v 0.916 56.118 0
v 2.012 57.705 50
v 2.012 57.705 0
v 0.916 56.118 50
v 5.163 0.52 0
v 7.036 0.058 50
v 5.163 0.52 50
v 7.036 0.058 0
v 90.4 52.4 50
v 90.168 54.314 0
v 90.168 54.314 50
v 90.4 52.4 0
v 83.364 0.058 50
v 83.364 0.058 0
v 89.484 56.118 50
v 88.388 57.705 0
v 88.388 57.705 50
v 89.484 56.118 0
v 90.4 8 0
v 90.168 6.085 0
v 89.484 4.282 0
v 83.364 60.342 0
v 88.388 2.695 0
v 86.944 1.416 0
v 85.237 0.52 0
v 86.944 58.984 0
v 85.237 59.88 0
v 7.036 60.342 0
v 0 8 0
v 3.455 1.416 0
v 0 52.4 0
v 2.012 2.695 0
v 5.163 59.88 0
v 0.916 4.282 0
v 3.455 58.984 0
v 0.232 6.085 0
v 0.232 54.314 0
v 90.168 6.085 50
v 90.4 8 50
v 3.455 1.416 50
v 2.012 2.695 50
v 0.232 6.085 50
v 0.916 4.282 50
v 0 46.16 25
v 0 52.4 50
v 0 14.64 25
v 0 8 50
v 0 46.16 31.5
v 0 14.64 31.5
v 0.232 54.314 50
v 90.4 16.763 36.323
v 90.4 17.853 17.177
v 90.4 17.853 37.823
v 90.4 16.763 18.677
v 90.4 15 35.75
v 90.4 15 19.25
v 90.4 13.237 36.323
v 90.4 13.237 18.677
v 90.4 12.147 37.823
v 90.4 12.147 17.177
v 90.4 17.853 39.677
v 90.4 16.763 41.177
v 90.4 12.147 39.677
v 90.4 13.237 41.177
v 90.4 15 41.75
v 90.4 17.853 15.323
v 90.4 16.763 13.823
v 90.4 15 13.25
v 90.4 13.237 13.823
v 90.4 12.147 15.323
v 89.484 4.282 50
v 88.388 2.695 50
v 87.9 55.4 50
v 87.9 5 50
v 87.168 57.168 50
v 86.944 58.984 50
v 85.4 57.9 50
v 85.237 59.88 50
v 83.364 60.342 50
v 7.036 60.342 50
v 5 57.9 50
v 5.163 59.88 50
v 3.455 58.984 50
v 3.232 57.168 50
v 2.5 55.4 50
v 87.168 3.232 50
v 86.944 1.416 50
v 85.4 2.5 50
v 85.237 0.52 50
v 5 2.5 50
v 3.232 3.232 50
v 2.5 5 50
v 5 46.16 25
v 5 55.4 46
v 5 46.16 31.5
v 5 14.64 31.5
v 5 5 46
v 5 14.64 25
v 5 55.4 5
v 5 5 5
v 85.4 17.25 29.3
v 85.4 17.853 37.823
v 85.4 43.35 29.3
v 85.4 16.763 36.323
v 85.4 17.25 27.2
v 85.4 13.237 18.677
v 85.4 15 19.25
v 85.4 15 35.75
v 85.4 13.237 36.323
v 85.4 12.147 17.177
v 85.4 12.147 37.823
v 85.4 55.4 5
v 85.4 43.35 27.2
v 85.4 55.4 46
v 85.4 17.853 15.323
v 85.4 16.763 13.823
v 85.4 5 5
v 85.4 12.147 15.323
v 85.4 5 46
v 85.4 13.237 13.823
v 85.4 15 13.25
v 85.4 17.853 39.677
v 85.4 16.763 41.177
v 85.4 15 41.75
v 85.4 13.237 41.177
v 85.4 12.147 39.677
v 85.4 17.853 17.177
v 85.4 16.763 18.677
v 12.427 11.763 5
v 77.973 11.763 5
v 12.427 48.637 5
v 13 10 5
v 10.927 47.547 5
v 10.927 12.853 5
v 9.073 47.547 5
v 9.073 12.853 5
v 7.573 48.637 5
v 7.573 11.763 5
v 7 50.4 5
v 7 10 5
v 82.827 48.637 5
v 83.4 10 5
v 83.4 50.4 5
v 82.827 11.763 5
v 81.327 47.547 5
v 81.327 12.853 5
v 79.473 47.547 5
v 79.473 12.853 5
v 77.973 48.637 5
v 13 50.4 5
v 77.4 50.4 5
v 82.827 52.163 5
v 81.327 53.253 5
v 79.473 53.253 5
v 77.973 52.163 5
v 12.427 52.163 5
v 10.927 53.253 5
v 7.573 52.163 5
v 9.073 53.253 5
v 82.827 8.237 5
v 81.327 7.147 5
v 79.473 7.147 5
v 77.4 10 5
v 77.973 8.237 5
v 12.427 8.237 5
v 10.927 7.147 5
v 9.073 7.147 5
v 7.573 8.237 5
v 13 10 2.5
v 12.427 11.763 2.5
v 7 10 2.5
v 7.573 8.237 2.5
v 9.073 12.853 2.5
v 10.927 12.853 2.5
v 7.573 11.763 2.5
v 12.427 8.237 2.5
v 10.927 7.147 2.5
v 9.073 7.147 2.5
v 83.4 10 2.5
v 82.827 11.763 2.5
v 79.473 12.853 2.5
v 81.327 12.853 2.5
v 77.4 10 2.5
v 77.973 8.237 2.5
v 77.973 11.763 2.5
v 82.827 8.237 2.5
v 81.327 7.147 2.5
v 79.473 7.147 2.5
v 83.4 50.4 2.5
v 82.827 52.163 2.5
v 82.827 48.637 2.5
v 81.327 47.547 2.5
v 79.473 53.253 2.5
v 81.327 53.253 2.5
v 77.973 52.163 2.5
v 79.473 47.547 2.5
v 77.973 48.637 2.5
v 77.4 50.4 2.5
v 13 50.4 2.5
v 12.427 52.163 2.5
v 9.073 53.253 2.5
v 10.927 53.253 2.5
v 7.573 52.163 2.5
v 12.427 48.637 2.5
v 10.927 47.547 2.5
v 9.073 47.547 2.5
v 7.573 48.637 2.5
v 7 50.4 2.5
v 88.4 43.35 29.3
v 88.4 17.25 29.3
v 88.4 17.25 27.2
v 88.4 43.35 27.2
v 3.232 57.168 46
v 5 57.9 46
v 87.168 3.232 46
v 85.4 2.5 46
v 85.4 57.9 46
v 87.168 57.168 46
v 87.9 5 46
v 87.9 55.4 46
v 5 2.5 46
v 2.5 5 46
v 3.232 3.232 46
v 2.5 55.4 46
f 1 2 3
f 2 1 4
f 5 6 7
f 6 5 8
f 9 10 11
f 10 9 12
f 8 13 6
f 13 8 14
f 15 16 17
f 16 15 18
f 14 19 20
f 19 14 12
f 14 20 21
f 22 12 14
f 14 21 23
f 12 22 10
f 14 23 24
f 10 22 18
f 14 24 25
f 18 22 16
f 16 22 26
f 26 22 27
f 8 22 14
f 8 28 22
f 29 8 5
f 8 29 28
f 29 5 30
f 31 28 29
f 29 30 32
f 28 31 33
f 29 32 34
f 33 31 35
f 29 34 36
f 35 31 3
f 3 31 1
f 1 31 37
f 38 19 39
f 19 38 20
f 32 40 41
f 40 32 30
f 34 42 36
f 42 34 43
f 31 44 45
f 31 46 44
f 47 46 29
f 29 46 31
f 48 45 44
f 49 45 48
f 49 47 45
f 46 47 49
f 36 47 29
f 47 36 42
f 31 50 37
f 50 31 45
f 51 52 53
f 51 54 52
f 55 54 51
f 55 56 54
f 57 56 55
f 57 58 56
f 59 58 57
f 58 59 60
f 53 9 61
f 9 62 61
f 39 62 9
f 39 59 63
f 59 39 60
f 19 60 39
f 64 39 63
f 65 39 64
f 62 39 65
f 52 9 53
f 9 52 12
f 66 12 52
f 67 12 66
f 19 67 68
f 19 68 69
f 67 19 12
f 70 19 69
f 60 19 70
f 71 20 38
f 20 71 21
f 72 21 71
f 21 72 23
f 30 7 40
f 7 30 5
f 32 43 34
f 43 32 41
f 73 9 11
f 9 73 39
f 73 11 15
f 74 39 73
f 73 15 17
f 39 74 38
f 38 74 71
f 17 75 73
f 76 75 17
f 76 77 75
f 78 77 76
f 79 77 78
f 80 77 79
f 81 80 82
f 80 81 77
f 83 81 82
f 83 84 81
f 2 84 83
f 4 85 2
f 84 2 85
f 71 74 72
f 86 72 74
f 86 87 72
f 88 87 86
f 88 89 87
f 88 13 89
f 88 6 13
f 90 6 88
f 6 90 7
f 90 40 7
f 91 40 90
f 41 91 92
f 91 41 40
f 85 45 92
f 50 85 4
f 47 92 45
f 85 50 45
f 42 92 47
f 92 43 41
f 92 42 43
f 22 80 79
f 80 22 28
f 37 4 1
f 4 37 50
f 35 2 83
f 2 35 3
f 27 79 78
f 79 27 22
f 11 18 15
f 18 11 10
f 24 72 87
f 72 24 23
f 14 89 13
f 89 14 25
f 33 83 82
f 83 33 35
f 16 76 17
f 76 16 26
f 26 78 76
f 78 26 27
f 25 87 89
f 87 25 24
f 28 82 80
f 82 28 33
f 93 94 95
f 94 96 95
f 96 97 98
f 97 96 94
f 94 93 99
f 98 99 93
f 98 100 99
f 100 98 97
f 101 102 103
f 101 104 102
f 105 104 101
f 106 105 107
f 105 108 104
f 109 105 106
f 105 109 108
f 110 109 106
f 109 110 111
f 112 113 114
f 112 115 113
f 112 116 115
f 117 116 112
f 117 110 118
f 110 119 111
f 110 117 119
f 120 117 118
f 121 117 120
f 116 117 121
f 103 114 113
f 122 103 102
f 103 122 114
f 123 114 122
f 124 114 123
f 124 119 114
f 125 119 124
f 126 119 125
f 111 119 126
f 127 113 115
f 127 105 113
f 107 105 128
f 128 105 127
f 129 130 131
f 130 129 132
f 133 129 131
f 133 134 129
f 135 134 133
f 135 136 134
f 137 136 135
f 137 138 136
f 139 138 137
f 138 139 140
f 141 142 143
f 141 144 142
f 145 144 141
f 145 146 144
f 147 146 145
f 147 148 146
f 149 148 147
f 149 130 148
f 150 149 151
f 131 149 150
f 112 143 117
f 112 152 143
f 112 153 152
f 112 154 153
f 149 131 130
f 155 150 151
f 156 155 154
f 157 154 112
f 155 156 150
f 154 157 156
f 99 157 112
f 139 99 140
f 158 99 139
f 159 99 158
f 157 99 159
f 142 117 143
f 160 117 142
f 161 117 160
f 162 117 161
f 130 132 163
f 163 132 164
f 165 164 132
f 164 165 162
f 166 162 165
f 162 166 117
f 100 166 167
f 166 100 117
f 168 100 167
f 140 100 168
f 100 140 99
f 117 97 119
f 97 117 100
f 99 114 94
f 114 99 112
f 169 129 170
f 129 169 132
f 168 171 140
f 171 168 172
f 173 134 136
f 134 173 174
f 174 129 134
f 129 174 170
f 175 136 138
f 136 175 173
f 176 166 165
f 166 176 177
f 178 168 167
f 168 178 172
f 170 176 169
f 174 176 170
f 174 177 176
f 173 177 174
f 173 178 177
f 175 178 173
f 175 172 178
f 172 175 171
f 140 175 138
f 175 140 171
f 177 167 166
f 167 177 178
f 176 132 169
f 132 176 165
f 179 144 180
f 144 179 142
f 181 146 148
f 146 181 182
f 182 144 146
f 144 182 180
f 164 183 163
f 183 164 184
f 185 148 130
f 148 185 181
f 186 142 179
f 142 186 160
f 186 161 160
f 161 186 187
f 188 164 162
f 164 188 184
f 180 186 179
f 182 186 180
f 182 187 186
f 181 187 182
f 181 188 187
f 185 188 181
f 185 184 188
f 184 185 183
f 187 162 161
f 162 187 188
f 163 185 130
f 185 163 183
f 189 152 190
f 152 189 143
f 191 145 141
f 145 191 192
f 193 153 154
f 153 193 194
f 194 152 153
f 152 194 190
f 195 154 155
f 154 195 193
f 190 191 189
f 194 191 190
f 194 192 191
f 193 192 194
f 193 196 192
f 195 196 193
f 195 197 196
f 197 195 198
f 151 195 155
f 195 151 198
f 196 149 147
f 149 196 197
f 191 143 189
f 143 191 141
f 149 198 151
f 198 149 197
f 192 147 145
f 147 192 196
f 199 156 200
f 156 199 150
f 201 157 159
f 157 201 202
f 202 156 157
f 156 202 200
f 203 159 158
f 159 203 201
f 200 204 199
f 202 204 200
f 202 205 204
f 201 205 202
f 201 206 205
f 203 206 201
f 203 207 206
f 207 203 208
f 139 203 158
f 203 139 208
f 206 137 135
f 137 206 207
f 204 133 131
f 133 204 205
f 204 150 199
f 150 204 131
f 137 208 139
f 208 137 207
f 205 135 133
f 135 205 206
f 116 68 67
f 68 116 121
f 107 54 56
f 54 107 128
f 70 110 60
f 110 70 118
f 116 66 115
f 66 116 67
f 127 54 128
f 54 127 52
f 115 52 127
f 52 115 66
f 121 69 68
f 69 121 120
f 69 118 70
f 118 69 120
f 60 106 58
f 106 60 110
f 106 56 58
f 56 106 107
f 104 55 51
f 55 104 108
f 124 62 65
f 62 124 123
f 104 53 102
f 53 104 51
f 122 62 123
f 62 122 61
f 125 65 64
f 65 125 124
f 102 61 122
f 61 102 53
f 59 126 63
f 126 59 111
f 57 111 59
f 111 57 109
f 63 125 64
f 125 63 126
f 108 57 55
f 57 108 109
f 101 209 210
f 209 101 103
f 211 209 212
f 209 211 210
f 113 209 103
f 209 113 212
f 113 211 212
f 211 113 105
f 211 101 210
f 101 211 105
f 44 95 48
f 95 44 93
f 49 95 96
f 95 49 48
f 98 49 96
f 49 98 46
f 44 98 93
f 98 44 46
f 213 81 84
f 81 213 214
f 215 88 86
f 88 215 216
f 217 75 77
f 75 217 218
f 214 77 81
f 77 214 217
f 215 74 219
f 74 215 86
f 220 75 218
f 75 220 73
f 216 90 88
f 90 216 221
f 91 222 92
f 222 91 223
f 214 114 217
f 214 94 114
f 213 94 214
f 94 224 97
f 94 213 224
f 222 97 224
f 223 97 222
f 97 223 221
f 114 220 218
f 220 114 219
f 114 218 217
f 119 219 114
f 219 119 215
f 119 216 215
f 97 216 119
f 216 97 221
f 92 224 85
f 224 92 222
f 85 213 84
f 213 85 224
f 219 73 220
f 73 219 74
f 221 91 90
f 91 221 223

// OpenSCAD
// file: open_box.scad
/////////////////////////////////////////////////////////////////////////////////
// Module for a open box with rounded edges.
//
// Author: 		Maximilian Stiefel
// Last modification: 	26.04.2017
/////////////////////////////////////////////////////////////////////////////////

module open_box(width, length, height, thickness)
{

	/////////////////////////////////////////////////////////////////////////
	// Vars
	/////////////////////////////////////////////////////////////////////////
	edge_rounding = 8;
	compensation = 2*abs(edge_rounding-thickness);

	/////////////////////////////////////////////////////////////////////////
	// Action
	/////////////////////////////////////////////////////////////////////////
	translate([0, 0, 0]) difference(){		
		// Hull 4 cylinders which are compensated against the thickness
		// so the actual desired thickness/2 and edge rounding is always achieved.
		hull(){
			// x=0, y=0
			translate([edge_rounding, edge_rounding, 0])
				cylinder(r = edge_rounding, h = height + thickness);
			// x=width, y=0
			translate([width + edge_rounding - compensation, edge_rounding, 0])
				cylinder(r = edge_rounding, h = height + thickness);
			// x=0, y=length
			translate([edge_rounding, length + edge_rounding - compensation,0])
				cylinder(r = edge_rounding, h = height + thickness);
			//x=width, y=length
			translate([width + edge_rounding - compensation, length + edge_rounding - compensation,0])
				cylinder(r = edge_rounding, h = height + thickness);
		}

		translate([thickness, thickness, thickness])
			cube([width, length, height + 1]);
	}
}
// main file
/////////////////////////////////////////////////////////////////////////////////
// Housing box for UppSense first tries.
//
// Author:              Maximilian Stiefel
// Last modification:   23.05.2017
/////////////////////////////////////////////////////////////////////////////////

use <open_box.scad>

/////////////////////////////////////////////////////////////////////////////////
// Vars
/////////////////////////////////////////////////////////////////////////////////
allowance_pcb = 0.2;
width = 50 + 2*allowance_pcb; 
length = 80 + 2*allowance_pcb;
height = 45;
thickness = 5;

lid_depth = 5;

bolt_diameter = 6;		// According to the Farnell datasheet
bolt_spacing = 5;

my_color = "DarkRed";

allowance_glass = 0.1;
allowance_adapter = 0.2;
glass_width = 26 + allowance_glass;
glass_height = 2 + allowance_glass;
glass_length = 76 + allowance_glass;
slot = 3;
adapter_length = 2 + 5 + 4 + slot; // 2*allowance_pcb + thickness + distance(glass_slide, wall_inside) + slot;

cables_diameter = 3;

/////////////////////////////////////////////////////////////////////////////////
// Action
/////////////////////////////////////////////////////////////////////////////////
difference(){

	// Using my open box module for creating a simple box 
	color(my_color, 0.8)
		open_box(length, width, height, thickness);
	
	// Creating a depening for the lid
	color(my_color, 0.9)
	translate([thickness, thickness, height+1])
	hull()
	{
		cylinder(r=thickness/2, h=lid_depth+1);
		translate([0, width, 0])
		cylinder(r=thickness/2, h=lid_depth+1);
		translate([length, 0, 0])
		cylinder(r=thickness/2, h=lid_depth+1);
		translate([length, width, 0])
		cylinder(r=thickness/2, h=lid_depth+1);

	}
	// If it shall not be round
	//cube([length + thickness, width + thickness, lid_depth+1]);	
		

	// Cylindric holes for the PCBs
	color(my_color, 1.0) translate([0, 0, thickness/2]){
		translate([thickness + bolt_spacing, thickness + bolt_spacing, 0])
			cylinder(r=bolt_diameter/2, h=thickness/2+1);
		translate([length + thickness - bolt_spacing, thickness + bolt_spacing, 0])
			cylinder(r=bolt_diameter/2, h=thickness/2+1);
		translate([length + thickness - bolt_spacing, width + thickness - bolt_spacing, 0])
			cylinder(r=bolt_diameter/2, h=thickness/2+1);
		translate([thickness + bolt_spacing, width + thickness - bolt_spacing, 0])
			cylinder(r=bolt_diameter/2, h=thickness/2+1);
	}

	// Cylindric holes for cables
	color(my_color, 1.0) union(){
		translate([thickness + length - 1, 3*thickness, thickness + (1/4)*height])
		rotate([0, 90, 0])
		cylinder(r=cables_diameter, h=thickness + 2);

		translate([thickness + length - 1, 3*thickness, thickness + (3/4)*height])
		rotate([0, 90, 0])
		cylinder(r=cables_diameter, h=thickness + 2);
	}

	// Slots for the glass slide	
	color(my_color, 0.6) union(){
		// Slots for glass slide
		// Slot in the back
		//translate([length + thickness/2, thickness + (width - glass_width)/2, (height + thickness)/2 - glass_height])
		translate([length + slot, -(glass_width-1.2*glass_width)/2 + thickness + (width - 1.2*glass_width + allowance_adapter)/2, (3*glass_height + allowance_adapter - glass_height)/2 +(height + thickness)/2])
		cube([thickness, glass_width, glass_height]);
		// Slot in the front
		translate([thickness + 1, thickness + (width - 1.2*glass_width + allowance_adapter)/2, (height + thickness)/2])
		rotate([0, 0, 90])
		cube([1.2*glass_width + allowance_adapter, thickness + 2, 3*glass_height + allowance_adapter]);			
	}
}

/////////////////////////////////////////////////////////////////////////////////
// Import other models
/////////////////////////////////////////////////////////////////////////////////
// Lid
*color(my_color, 0.8)
translate([thickness/2, thickness/2, height]) 
import("lid.stl");

// Adapter
*color(my_color, 0.8)
translate([-30,thickness + (width - 1.2*glass_width)/2,(height + thickness)/2]) 
rotate([0, 0, 270])
import("adapter.stl");
